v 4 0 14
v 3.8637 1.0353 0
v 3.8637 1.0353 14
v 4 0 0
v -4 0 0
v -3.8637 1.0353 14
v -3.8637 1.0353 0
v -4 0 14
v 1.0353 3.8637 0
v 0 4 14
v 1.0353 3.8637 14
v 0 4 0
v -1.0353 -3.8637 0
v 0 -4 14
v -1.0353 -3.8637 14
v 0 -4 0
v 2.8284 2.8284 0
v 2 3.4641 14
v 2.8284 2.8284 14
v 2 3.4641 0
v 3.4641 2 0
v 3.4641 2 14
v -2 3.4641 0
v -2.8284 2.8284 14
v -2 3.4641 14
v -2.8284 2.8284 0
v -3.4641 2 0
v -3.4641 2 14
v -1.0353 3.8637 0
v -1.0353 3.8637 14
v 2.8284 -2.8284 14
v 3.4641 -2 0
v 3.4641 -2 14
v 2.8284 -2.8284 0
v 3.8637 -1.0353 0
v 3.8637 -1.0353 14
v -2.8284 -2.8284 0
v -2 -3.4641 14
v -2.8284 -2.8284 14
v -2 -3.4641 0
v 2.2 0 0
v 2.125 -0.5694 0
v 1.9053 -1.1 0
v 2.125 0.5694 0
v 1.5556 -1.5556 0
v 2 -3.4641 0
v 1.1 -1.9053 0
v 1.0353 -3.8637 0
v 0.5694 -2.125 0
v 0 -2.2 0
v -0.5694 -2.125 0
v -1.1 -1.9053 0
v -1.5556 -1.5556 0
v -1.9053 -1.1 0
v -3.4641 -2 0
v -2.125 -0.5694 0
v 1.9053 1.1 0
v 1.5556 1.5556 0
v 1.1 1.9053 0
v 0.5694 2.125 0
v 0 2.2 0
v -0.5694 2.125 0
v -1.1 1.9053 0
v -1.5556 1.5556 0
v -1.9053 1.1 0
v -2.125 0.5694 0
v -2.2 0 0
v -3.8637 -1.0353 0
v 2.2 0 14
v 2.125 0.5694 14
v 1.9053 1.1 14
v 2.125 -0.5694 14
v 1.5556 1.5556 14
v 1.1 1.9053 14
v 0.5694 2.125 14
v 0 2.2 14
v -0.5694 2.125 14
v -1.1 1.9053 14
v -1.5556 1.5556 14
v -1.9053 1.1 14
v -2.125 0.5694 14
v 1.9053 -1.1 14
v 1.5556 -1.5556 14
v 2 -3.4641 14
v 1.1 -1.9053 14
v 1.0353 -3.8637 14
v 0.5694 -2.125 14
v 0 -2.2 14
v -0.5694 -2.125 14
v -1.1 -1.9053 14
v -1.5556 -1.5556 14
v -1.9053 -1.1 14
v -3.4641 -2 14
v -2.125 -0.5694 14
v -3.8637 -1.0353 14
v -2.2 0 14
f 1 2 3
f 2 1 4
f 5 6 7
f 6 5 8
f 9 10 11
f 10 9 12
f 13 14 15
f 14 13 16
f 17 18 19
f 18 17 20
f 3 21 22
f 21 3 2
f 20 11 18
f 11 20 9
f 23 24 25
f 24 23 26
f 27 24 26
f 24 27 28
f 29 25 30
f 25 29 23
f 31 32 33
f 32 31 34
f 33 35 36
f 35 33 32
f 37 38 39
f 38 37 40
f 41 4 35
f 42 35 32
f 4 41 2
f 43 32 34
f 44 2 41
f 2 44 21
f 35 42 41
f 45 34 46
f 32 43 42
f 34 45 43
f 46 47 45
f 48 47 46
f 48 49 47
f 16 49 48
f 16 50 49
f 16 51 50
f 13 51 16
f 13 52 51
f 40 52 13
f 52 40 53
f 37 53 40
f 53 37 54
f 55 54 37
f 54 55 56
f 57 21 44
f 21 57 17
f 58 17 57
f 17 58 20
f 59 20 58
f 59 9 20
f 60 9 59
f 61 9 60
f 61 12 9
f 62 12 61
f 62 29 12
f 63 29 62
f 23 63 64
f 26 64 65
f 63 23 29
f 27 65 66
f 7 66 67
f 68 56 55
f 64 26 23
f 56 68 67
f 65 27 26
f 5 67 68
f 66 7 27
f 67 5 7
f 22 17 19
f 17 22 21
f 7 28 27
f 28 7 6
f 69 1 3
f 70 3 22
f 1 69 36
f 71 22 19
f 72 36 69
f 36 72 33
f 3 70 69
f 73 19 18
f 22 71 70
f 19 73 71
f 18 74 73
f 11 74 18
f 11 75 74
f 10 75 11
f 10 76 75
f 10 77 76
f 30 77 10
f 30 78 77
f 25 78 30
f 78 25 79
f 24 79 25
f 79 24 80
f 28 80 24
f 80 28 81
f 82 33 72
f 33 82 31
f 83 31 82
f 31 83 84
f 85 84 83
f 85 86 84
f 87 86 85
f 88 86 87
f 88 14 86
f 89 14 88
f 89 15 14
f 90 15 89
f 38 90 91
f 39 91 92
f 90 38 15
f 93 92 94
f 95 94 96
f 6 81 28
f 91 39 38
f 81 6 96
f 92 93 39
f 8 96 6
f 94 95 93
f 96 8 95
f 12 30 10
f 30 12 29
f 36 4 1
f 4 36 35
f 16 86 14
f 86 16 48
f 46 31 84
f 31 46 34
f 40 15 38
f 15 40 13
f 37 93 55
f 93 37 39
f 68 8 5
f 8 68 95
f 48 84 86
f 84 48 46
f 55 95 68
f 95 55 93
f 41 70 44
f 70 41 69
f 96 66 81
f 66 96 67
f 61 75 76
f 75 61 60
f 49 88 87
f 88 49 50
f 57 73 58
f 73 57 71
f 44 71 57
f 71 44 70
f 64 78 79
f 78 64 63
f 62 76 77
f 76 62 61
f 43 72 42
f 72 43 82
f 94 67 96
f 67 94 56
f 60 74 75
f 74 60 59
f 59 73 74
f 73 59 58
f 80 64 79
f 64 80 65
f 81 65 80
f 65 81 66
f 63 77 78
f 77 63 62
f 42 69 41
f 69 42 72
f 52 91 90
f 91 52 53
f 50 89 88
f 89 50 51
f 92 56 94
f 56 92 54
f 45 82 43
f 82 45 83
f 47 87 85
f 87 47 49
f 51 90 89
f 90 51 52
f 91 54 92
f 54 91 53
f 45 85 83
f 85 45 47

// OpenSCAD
outer_cylinder = 8;
inner_cylinder = 4.4;
height = 14;
number_x = 1;
number_y = 1;


for(i=[0:number_x-1]) 
for(j=[0:number_y-1]) 
translate([(outer_cylinder+1)*i,(outer_cylinder+1)*j,0])
difference(){
    cylinder(h=height,d=outer_cylinder,$fn=24);
    cylinder(h=height,d=inner_cylinder,$fn=24);
}
    
